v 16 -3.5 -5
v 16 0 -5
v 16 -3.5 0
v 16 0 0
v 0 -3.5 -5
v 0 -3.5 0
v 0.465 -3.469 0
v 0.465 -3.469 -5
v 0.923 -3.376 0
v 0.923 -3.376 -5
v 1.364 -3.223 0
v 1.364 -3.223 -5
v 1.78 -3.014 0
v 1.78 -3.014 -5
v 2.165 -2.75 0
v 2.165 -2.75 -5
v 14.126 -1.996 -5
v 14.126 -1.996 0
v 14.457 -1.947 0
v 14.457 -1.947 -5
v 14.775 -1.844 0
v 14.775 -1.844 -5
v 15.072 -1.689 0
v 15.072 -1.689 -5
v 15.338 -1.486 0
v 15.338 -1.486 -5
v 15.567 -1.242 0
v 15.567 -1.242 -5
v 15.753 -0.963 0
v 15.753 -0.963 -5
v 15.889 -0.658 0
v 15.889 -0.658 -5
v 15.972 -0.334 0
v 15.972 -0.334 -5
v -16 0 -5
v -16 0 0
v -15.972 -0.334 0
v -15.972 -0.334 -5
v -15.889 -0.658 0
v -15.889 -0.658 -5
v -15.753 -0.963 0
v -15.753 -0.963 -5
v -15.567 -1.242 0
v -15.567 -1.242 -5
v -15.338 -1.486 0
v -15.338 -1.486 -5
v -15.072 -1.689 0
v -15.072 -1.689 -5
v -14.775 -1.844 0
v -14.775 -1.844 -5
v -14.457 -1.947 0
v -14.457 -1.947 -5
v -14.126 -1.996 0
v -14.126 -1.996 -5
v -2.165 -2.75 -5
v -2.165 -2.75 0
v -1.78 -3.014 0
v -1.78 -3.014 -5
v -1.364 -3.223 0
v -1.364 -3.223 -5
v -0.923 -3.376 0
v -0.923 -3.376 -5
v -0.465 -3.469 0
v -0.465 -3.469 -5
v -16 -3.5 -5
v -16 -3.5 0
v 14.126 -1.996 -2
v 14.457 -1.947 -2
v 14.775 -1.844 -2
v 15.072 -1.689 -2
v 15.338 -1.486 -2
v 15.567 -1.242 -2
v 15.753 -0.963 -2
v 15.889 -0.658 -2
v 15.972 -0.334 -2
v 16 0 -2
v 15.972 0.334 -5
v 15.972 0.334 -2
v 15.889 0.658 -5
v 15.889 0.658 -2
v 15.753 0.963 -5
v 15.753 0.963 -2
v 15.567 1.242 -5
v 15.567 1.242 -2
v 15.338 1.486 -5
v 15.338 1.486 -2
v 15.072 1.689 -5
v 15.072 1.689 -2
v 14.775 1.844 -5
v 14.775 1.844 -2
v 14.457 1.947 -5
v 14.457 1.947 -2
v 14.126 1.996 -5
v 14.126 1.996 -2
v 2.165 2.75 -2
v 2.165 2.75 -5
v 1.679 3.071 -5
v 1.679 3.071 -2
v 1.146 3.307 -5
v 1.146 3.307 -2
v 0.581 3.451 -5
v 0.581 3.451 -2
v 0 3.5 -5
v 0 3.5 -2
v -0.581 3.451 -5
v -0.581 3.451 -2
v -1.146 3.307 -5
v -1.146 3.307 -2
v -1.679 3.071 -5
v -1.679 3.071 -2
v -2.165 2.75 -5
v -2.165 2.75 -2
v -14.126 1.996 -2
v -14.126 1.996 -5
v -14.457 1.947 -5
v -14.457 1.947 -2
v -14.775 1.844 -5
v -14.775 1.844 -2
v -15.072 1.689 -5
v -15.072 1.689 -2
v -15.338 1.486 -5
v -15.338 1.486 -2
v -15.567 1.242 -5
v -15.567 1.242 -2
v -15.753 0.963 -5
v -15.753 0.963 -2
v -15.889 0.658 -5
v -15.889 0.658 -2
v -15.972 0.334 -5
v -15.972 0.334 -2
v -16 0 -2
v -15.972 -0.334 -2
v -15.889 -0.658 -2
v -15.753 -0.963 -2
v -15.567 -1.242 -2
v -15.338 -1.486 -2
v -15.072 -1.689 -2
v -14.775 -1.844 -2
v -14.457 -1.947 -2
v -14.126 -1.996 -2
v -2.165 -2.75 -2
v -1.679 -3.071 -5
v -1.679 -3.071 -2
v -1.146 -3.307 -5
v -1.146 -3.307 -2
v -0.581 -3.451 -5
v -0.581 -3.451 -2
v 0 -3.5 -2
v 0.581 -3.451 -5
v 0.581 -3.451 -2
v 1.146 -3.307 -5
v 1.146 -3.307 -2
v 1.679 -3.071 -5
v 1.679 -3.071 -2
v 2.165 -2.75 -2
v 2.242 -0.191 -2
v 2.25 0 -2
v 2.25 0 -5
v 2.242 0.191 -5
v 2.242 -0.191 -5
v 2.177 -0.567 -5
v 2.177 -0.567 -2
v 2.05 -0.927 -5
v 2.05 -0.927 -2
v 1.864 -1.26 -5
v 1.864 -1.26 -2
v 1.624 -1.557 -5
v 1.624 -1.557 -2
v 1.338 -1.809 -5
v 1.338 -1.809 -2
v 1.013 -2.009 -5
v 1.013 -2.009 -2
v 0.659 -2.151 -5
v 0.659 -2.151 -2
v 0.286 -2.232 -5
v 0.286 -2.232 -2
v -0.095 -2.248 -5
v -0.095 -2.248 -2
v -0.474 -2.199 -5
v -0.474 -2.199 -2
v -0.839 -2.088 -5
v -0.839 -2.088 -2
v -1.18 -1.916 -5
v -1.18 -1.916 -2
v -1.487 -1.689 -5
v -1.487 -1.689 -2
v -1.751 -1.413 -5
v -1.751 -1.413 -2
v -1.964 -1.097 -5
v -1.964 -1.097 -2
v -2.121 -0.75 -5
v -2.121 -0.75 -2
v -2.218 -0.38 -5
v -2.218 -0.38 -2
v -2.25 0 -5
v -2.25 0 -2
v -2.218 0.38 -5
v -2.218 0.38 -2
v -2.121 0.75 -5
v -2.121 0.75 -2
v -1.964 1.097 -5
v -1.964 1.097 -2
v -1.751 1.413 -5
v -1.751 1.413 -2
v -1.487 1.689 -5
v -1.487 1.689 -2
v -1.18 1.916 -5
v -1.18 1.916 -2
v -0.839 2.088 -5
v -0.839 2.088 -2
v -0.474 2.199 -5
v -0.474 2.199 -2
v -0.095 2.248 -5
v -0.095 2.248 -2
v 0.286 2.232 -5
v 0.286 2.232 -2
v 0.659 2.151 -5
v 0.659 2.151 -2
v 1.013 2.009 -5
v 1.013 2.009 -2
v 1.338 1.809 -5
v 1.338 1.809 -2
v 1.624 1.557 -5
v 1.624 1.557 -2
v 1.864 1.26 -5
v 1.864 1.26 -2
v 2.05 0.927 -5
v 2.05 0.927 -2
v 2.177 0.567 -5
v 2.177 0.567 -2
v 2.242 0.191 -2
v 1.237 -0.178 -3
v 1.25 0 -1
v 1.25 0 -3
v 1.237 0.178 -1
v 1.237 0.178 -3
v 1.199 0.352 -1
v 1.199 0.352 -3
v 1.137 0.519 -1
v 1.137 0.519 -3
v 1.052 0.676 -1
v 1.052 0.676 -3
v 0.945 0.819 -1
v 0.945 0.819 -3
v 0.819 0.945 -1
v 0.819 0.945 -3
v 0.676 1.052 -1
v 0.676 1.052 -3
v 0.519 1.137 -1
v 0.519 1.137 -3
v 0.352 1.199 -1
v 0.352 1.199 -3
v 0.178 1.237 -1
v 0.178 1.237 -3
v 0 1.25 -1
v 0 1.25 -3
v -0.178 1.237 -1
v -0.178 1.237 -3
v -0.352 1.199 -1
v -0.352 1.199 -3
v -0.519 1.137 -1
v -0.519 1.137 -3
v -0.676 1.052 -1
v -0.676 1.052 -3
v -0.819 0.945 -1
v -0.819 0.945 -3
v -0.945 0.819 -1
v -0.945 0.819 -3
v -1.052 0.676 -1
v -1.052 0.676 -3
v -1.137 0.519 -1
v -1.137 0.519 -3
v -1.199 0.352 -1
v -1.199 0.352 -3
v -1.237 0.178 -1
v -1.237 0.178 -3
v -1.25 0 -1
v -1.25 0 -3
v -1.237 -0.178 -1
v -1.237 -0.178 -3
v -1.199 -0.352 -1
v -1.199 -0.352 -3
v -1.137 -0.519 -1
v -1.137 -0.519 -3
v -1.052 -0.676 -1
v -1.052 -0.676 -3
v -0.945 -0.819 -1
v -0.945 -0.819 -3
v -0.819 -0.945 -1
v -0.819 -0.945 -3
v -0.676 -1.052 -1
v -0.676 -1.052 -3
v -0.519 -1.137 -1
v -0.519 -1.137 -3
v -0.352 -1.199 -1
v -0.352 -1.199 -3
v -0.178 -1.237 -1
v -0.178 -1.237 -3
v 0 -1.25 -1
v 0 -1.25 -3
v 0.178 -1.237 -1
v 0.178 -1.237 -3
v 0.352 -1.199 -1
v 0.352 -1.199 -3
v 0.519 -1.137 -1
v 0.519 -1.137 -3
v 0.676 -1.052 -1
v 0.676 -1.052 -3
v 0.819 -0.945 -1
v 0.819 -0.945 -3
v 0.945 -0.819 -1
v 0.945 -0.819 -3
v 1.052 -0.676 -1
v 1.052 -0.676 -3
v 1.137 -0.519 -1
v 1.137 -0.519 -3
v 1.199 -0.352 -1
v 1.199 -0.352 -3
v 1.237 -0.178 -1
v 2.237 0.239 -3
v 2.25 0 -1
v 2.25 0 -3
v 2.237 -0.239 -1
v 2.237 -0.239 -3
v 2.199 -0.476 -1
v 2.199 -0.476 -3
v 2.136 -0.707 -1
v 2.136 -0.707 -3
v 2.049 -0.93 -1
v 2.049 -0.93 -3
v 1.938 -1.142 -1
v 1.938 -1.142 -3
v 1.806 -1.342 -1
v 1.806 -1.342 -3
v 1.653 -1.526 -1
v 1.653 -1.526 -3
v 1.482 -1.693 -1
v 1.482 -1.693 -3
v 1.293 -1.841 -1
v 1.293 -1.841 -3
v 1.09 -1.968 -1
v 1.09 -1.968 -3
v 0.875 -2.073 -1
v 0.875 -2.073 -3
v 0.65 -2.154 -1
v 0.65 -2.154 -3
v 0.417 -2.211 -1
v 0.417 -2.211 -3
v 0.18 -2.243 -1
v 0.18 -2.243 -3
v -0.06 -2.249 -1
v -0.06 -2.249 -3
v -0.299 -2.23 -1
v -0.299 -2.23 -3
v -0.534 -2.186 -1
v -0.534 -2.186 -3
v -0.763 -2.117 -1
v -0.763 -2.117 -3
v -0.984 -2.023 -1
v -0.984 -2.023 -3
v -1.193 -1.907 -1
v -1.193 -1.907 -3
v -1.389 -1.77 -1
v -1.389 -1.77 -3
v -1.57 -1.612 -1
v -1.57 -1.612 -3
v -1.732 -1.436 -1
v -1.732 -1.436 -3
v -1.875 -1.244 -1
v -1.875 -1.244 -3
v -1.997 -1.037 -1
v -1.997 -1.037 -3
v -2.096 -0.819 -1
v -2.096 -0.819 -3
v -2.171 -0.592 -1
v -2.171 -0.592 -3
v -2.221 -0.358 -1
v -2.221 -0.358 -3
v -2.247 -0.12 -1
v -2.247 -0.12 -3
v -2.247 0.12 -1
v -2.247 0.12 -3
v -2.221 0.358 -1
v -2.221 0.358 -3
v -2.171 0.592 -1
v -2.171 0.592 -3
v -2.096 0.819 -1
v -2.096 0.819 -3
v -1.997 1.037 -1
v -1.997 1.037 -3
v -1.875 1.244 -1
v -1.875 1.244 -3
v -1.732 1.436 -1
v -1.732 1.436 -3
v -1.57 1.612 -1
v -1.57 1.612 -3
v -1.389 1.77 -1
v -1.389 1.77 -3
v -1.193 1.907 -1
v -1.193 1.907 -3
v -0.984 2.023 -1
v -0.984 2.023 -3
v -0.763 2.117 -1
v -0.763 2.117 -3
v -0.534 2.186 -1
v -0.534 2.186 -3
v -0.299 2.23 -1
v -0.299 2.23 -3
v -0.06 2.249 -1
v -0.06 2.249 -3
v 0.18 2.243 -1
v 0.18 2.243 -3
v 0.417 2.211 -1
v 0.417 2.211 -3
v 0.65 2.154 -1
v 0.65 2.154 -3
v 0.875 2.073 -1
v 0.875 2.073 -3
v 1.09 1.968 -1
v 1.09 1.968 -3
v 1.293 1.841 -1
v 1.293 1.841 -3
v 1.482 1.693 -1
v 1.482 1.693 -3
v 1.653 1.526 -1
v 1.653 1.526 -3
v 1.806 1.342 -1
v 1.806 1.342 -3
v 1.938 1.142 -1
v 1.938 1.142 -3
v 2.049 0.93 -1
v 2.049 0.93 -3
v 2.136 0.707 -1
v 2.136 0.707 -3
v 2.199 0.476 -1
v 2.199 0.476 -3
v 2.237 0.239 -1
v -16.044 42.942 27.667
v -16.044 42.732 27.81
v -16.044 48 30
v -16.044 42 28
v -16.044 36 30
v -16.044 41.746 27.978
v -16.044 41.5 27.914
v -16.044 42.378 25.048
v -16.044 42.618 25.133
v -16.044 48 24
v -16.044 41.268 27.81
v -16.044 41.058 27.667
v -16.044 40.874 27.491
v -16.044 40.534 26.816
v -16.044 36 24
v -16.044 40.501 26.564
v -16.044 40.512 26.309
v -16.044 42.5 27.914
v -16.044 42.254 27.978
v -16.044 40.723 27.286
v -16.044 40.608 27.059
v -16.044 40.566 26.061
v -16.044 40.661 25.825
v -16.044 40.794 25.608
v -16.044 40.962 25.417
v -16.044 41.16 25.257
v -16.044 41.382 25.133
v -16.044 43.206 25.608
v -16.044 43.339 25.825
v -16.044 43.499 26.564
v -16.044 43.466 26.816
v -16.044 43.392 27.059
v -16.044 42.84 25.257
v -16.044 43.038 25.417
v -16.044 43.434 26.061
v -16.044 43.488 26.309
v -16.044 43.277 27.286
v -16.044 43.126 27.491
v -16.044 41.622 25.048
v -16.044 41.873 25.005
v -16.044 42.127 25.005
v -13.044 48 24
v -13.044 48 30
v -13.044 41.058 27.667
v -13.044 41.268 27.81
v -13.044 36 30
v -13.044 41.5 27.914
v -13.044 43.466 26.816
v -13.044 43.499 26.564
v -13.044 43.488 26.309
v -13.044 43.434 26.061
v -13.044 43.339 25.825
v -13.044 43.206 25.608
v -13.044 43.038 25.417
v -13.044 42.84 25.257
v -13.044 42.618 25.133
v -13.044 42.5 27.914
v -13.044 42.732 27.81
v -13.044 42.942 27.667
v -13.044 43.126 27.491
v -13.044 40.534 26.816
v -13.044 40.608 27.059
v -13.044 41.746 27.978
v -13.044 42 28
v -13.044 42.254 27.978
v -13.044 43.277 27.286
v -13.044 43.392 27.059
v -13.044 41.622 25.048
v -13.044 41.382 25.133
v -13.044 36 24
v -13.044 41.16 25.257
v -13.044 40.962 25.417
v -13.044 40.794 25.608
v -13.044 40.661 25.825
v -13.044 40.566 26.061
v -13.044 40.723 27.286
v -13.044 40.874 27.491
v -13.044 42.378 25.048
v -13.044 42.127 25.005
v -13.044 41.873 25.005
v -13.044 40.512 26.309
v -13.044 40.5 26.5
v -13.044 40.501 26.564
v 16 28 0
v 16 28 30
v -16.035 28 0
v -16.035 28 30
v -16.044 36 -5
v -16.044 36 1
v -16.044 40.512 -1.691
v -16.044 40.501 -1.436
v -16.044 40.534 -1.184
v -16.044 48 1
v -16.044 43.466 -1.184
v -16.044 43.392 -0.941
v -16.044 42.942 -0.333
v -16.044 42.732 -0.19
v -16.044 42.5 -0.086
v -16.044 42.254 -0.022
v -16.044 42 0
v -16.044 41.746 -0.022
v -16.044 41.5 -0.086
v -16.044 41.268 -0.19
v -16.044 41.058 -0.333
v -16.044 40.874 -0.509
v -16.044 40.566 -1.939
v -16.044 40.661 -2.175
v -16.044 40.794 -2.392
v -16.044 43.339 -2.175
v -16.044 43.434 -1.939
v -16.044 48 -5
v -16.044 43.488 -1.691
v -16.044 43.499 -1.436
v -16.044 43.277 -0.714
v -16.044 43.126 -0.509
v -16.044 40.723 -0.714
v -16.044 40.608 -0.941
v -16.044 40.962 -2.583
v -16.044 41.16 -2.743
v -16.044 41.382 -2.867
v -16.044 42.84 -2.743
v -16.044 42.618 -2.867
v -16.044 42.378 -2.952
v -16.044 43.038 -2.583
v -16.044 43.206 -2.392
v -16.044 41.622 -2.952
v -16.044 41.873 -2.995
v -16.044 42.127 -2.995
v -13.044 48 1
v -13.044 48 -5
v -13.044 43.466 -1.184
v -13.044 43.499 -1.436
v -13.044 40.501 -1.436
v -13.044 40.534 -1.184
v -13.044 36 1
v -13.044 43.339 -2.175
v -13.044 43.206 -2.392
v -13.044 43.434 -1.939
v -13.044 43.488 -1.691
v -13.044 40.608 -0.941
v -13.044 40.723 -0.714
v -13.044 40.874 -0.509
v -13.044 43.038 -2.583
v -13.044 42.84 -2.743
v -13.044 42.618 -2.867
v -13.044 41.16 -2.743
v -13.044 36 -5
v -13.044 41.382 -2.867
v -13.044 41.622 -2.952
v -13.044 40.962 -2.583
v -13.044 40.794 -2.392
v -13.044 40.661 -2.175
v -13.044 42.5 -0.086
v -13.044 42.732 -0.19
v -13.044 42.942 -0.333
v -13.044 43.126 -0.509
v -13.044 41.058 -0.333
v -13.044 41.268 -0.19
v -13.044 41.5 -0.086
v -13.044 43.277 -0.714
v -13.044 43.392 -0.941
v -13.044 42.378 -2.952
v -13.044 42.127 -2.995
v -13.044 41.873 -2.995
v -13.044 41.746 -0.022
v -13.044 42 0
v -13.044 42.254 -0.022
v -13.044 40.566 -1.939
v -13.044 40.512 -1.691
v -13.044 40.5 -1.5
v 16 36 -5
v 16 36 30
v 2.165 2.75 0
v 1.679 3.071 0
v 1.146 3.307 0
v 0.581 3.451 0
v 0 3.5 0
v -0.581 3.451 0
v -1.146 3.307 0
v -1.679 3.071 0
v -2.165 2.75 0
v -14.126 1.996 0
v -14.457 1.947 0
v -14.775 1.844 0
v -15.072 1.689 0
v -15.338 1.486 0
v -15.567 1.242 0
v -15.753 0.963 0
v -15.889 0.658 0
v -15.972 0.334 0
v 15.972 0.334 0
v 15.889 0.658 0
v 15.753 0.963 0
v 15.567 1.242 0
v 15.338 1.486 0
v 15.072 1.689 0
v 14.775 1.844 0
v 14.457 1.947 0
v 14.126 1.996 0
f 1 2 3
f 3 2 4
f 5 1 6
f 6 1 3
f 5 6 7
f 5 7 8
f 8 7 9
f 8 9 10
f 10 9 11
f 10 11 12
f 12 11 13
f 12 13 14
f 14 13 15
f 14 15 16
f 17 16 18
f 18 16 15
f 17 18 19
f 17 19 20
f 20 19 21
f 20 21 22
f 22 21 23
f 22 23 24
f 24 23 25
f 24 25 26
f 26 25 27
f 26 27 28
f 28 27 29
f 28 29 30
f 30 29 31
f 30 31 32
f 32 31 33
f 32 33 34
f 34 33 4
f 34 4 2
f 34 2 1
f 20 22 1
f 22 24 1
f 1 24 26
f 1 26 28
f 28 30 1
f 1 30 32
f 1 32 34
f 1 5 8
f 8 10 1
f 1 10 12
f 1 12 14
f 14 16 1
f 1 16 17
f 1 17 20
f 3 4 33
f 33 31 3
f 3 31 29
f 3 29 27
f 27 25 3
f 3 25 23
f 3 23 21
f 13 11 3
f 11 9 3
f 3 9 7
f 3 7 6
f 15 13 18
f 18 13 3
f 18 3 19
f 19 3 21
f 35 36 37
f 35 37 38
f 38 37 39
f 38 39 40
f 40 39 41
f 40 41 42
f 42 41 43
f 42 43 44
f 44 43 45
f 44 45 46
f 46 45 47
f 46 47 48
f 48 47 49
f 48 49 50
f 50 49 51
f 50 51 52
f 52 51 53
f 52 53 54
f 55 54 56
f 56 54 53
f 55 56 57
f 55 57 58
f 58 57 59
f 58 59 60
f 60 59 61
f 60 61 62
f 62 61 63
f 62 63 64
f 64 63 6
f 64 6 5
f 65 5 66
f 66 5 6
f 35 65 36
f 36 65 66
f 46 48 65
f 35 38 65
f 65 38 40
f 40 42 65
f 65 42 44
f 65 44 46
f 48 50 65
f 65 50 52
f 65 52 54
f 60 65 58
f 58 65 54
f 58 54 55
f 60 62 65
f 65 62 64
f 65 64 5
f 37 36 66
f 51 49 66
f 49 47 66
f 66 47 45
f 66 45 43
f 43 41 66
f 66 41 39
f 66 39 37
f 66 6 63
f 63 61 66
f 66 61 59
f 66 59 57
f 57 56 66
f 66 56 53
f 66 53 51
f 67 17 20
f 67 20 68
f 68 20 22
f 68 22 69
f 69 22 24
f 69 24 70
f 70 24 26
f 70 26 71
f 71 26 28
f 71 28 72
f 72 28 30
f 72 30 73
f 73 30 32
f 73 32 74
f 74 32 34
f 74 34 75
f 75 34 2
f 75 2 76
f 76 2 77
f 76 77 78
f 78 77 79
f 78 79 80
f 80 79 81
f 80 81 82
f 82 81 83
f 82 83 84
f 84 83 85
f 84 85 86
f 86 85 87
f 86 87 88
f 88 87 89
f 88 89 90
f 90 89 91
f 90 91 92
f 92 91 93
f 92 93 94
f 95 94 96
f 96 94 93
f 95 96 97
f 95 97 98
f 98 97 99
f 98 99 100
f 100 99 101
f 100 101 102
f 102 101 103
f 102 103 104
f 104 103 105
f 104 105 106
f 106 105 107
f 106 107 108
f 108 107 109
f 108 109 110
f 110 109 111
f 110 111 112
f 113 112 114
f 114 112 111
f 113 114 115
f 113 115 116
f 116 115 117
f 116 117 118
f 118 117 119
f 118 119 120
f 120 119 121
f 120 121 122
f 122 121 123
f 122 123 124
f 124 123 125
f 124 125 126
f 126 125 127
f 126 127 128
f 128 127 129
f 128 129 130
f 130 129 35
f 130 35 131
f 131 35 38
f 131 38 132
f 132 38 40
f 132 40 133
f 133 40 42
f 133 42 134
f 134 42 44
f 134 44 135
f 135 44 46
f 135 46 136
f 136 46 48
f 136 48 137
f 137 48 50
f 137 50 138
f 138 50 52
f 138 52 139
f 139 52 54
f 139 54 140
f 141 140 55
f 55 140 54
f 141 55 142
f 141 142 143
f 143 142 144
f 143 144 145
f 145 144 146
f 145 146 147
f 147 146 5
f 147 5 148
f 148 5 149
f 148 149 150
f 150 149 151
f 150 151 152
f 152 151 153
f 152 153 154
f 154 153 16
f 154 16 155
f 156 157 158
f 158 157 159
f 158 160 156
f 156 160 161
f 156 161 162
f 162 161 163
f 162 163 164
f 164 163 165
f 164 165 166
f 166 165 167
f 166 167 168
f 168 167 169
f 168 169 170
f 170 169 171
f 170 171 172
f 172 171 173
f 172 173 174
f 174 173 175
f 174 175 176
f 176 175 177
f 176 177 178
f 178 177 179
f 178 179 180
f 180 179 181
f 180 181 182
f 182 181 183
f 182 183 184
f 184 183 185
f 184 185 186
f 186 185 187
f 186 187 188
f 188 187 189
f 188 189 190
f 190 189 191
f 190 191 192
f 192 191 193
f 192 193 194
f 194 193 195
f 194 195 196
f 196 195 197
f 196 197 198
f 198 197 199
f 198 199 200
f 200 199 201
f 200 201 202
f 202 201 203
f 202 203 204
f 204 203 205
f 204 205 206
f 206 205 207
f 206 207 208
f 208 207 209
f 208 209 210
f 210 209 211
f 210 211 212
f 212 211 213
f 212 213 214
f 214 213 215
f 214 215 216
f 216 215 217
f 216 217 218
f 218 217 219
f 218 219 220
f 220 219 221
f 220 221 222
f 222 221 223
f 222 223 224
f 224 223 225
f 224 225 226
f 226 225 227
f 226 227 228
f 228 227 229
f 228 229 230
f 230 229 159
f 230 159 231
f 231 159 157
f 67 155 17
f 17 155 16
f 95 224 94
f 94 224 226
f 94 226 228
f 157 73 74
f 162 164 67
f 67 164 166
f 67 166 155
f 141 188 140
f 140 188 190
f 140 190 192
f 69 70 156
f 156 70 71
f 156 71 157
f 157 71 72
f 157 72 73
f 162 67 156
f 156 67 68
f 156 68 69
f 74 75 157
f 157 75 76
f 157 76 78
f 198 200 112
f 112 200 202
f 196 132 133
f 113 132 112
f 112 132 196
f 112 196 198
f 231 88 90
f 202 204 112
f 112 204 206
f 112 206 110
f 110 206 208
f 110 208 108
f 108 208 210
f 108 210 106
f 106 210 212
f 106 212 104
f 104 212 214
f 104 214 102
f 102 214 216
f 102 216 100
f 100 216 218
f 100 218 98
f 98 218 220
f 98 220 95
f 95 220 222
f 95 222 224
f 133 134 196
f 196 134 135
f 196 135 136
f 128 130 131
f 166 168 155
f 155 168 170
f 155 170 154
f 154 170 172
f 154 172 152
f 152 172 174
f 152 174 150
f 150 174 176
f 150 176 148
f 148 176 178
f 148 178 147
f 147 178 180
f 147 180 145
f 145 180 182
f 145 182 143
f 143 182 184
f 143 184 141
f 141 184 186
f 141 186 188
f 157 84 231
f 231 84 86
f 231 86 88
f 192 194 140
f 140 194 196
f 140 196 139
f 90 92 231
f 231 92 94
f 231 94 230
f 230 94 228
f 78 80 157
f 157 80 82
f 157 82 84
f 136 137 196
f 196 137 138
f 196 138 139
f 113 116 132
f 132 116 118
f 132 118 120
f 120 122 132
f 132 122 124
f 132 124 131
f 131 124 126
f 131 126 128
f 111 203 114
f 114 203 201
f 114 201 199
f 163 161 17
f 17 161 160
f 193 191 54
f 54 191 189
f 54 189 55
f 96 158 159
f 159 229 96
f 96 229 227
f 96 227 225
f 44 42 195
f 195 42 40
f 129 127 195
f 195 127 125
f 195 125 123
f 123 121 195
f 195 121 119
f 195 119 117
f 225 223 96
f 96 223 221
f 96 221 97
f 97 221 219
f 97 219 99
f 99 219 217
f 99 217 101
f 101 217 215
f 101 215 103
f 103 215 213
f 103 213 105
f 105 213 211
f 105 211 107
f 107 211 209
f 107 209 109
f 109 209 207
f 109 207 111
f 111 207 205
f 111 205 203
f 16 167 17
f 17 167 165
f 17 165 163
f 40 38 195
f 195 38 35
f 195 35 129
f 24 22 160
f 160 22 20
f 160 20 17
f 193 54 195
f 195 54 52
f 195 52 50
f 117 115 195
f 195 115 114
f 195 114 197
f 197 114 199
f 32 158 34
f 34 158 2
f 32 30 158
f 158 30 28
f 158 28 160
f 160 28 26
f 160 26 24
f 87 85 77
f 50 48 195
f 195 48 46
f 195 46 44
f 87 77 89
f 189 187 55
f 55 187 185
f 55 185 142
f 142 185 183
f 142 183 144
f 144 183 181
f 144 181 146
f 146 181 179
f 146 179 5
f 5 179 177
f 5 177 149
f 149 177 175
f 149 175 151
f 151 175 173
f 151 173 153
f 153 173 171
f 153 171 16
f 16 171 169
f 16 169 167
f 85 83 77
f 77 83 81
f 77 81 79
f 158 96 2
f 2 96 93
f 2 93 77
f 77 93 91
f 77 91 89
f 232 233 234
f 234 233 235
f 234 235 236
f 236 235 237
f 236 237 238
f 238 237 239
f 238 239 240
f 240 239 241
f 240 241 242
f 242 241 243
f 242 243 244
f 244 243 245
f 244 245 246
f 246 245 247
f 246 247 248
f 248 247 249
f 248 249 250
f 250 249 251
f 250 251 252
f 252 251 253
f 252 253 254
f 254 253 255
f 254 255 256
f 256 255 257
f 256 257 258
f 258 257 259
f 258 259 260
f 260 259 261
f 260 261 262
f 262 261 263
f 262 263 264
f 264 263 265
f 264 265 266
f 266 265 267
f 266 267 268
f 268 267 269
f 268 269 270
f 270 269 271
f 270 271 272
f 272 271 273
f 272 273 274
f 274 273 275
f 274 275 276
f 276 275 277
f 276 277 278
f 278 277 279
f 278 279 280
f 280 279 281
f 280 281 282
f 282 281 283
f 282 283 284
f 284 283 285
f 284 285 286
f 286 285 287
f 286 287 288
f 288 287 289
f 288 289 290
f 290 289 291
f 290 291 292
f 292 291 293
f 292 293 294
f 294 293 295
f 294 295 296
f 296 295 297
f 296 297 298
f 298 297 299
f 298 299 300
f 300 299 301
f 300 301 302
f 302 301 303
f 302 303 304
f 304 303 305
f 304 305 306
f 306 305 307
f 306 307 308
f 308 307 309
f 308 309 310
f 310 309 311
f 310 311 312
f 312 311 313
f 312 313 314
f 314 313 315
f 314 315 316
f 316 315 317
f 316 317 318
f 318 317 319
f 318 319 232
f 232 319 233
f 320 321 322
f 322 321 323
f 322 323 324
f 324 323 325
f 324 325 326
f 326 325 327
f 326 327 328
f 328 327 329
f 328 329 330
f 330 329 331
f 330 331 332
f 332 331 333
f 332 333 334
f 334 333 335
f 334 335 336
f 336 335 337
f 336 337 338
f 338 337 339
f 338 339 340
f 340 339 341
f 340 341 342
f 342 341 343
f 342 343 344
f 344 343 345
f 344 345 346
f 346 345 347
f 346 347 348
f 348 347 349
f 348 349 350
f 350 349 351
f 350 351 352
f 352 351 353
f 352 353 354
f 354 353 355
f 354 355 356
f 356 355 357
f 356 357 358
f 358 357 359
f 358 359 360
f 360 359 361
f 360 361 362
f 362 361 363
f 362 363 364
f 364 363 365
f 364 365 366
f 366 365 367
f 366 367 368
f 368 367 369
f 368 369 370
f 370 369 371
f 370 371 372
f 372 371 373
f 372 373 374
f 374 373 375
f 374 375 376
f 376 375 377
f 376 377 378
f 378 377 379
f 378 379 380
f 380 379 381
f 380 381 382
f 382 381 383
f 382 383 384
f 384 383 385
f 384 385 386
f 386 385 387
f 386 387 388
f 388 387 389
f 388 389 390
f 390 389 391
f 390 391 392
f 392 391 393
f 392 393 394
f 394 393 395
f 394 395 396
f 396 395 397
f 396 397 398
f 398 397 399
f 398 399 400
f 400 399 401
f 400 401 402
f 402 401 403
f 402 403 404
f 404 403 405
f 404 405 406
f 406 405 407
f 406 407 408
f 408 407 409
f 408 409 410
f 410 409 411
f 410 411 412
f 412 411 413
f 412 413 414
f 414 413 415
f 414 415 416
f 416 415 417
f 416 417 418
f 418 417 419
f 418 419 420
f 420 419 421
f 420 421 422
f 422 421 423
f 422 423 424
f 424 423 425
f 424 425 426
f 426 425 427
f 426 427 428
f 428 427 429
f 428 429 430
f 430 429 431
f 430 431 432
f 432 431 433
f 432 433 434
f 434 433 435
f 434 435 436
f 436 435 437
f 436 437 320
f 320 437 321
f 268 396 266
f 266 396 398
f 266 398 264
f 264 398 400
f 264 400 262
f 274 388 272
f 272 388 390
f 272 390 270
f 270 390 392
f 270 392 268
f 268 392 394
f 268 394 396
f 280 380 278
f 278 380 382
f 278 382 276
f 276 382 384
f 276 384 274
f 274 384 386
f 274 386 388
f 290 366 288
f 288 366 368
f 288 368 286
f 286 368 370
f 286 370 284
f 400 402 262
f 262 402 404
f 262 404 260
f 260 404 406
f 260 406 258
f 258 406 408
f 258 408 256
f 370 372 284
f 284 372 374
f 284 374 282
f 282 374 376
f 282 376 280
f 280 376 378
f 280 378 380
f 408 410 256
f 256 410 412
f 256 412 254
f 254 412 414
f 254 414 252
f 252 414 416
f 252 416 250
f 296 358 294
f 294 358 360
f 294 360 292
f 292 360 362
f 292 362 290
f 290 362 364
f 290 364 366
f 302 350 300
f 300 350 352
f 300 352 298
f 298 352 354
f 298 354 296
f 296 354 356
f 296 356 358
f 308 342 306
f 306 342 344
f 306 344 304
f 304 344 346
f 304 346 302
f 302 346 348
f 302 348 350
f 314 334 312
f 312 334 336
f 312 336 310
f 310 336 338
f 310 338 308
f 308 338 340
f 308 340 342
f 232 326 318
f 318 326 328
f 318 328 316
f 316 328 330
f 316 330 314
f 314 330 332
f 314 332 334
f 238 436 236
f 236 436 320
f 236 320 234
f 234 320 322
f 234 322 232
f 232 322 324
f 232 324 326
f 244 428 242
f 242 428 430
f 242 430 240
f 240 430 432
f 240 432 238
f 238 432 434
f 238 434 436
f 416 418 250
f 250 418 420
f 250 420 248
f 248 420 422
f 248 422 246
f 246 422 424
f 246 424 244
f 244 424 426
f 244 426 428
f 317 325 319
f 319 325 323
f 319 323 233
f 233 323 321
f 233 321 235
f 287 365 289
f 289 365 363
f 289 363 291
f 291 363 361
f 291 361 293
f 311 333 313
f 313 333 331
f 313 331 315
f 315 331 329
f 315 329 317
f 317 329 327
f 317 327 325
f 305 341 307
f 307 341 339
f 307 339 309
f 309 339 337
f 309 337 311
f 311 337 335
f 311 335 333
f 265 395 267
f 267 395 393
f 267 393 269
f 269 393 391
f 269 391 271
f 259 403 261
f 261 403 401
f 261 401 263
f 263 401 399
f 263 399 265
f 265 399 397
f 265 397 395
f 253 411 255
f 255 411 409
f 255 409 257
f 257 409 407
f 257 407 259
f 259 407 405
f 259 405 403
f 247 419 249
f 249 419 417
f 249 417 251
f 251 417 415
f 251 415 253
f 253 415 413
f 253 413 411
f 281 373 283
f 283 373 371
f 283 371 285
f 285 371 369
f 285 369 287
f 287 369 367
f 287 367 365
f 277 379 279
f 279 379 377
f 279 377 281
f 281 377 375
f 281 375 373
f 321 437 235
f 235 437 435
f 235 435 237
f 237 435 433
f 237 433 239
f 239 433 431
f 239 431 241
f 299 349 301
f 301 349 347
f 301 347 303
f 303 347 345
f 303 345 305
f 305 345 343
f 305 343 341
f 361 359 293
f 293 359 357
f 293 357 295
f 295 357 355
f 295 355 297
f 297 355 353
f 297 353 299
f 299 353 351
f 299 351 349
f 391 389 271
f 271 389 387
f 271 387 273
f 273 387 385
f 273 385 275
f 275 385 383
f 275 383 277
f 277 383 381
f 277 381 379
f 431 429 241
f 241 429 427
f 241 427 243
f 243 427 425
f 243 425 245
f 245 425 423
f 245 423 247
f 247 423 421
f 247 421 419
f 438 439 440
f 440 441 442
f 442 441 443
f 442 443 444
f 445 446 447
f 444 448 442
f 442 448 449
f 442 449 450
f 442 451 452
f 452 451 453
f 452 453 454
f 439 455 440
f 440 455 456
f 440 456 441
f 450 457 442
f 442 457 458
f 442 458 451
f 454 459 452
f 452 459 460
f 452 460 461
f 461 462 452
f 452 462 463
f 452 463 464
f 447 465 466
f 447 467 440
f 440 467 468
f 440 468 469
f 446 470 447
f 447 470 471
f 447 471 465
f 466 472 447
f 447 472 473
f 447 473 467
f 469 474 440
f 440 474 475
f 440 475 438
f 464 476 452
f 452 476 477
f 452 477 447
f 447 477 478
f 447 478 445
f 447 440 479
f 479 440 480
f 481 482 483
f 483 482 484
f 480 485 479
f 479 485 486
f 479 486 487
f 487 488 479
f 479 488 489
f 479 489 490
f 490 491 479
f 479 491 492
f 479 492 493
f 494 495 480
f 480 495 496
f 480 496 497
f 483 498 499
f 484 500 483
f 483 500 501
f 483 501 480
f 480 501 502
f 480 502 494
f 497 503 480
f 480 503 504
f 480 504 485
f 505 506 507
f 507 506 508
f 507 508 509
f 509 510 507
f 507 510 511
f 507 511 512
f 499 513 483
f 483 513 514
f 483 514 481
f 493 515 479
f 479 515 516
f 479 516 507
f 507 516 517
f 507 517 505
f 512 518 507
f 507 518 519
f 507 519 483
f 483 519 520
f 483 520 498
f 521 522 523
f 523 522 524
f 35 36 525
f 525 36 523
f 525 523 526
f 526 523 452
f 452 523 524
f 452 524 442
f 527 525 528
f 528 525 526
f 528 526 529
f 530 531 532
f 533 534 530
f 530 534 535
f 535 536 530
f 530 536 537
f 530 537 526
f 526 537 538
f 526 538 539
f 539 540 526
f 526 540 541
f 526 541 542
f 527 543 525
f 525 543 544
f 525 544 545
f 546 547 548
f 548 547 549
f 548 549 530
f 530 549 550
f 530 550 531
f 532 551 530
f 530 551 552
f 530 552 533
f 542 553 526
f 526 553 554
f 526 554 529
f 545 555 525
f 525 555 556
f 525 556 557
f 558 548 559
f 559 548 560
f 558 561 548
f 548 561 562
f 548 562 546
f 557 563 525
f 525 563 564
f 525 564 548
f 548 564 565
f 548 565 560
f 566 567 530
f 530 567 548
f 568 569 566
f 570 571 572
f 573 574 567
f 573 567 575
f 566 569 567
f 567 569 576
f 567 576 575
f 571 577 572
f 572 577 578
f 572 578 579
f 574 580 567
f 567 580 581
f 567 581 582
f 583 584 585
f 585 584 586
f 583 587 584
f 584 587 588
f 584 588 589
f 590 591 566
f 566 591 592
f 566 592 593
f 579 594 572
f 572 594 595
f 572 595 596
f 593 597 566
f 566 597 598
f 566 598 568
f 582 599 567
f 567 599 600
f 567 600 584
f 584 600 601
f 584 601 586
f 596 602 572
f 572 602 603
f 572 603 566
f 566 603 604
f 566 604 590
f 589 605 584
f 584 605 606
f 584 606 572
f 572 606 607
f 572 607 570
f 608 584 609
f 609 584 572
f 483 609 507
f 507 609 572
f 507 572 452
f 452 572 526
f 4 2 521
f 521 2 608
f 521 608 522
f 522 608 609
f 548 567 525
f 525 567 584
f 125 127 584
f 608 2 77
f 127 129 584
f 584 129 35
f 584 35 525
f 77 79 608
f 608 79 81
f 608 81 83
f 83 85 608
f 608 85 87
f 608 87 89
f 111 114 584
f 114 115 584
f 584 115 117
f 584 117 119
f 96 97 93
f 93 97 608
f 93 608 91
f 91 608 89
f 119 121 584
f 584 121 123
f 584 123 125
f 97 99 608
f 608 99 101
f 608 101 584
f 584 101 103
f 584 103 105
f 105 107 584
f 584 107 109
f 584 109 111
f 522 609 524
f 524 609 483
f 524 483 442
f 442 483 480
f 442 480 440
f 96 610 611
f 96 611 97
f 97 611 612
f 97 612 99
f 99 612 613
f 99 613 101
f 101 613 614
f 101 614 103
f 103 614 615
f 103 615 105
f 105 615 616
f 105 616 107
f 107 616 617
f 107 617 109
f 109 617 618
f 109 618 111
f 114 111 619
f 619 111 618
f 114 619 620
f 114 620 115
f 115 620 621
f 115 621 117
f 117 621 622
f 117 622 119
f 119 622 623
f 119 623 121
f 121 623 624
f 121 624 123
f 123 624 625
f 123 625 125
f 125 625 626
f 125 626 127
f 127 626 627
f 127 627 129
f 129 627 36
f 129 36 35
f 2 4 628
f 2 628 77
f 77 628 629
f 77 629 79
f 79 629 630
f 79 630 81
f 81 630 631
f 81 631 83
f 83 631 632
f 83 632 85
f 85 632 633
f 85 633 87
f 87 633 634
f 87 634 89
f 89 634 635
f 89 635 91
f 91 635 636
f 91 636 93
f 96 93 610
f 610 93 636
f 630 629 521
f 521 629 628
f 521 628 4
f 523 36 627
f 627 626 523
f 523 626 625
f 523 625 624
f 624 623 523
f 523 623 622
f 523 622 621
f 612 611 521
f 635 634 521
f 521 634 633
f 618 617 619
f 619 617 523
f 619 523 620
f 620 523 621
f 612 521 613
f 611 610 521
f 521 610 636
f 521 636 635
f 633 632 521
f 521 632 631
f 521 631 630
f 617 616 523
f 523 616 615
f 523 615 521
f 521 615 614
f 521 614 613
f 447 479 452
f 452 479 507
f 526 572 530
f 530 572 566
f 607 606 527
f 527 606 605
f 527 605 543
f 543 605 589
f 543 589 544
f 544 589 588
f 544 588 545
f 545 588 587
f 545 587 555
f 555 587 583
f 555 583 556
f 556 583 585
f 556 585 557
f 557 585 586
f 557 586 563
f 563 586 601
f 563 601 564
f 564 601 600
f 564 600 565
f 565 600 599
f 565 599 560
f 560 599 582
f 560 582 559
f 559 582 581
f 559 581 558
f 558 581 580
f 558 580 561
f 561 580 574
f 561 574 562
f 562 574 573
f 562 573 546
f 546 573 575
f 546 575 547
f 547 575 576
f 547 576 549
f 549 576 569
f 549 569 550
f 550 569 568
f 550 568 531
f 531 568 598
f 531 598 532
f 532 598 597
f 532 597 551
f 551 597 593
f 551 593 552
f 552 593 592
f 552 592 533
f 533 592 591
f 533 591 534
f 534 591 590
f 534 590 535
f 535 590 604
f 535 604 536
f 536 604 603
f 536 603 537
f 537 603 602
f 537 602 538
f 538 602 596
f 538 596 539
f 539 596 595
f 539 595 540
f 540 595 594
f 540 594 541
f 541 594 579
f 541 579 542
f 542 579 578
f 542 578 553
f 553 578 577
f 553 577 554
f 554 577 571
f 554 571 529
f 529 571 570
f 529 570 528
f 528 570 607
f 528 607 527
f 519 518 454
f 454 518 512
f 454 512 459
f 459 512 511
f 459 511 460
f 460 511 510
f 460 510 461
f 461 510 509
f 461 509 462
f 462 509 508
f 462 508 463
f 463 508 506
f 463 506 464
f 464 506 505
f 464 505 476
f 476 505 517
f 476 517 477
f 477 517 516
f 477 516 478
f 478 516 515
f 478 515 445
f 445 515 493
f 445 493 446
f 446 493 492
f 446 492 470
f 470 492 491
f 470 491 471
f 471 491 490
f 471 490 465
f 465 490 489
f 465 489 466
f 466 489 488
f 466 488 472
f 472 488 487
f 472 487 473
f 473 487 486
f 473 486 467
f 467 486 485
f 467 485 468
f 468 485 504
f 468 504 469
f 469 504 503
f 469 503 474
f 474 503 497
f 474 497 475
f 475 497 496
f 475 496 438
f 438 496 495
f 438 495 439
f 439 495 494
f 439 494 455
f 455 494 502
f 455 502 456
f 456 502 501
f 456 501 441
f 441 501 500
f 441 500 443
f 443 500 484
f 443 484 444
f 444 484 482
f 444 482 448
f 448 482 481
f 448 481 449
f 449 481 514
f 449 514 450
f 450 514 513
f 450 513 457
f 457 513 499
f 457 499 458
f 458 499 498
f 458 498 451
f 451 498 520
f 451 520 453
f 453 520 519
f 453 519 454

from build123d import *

# Parameters (mm, degrees)
BOSS_EXTRUDE29_DEPTH      = 30
BOSS_EXTRUDE29_DEPTH_BACK = 5
BOSS_EXTRUDE31_DEPTH      = 5
BOSS_EXTRUDE104_START     = -3.5
SKETCH1_23_R              = 2.25
BOSS_EXTRUDE104_DEPTH     = 1.5
BOSS_EXTRUDE105_START     = -1
SKETCH1_24_R              = 2.25
SKETCH1_24_R_2            = 1.25
BOSS_EXTRUDE105_DEPTH     = 2
SKETCH3_W                 = 23
SKETCH3_H                 = 12
CUT_EXTRUDE1_DEPTH        = 66.044949511
SKETCH4_R                 = 1.5
CUT_EXTRUDE2_DEPTH        = 66.044949511


with BuildPart() as part:
    # Sketch1 → Boss-Extrude29 (new, two sides: drawn at the far end of the back side and taken through both)
    with BuildSketch(Plane.XY.offset(-BOSS_EXTRUDE29_DEPTH_BACK)):
        Polygon((-16.034556216, 28), (16, 28), (16, 36), (-13.044429421, 36), (-13.044429421, 48), (-16.044429421, 48), (-16.044429421, 36), align=None)
    extrude(amount=BOSS_EXTRUDE29_DEPTH + BOSS_EXTRUDE29_DEPTH_BACK)

    # Sketch1<12> → Boss-Extrude31 (add)
    with BuildSketch(Plane.XY):
        with BuildLine():
            ThreePointArc((14.125822824, 1.99603823), (15.458020173, 1.369005908), (16, 0))
            Line((16, 0), (16, 28))
            Line((16, 28), (-16.034556216, 28))
            Line((-16.034556216, 28), (-16, 0))
            ThreePointArc((-16, 0), (-15.458020173, 1.369005908), (-14.125822824, 1.99603823))
            Line((-14.125822824, 1.99603823), (-2.165063509, 2.75))
            ThreePointArc((-2.165063509, 2.75), (0, 3.5), (2.165063509, 2.75))
            Line((2.165063509, 2.75), (14.125822824, 1.99603823))
        make_face()
        with BuildLine():
            Line((16, -3.5), (16, 0))
            ThreePointArc((16, 0), (15.458020173, -1.369005908), (14.125822824, -1.99603823))
            Line((14.125822824, -1.99603823), (2.165063509, -2.75))
            ThreePointArc((2.165063509, -2.75), (1.145643924, -3.307189139), (0, -3.5))
            Line((0, -3.5), (16, -3.5))
        make_face()
        with BuildLine():
            Line((-16, -3.5), (0, -3.5))
            ThreePointArc((0, -3.5), (-1.145643924, -3.307189139), (-2.165063509, -2.75))
            Line((-2.165063509, -2.75), (-14.125822824, -1.99603823))
            ThreePointArc((-14.125822824, -1.99603823), (-15.458020173, -1.369005908), (-16, 0))
            Line((-16, 0), (-16, -3.5))
        make_face()
    extrude(amount=-BOSS_EXTRUDE31_DEPTH)


with BuildPart() as boss_extrude31_piece_1:
    # of the separate pieces the step leaves, piece 1, a body of its own (boss_extrude31_pieces)
    add(part.part.solids().sort_by_distance((-16.034556216, 28, 30))[0])

    # Sketch3 → Cut-Extrude1 (cut, through all)
    with BuildSketch(Plane.ZY.offset(16.044429421)):
        with Locations((12.5, 42)):
            Rectangle(SKETCH3_W, SKETCH3_H)
    extrude(amount=-CUT_EXTRUDE1_DEPTH, mode=Mode.SUBTRACT)

    # Sketch4 → Cut-Extrude2 (cut, through all)
    with BuildSketch(Plane.ZY.offset(16.044429421)):
        with Locations((-1.5, 42)):
            Circle(SKETCH4_R)
        with Locations((26.5, 42)):
            Circle(SKETCH4_R)
    extrude(amount=-CUT_EXTRUDE2_DEPTH, mode=Mode.SUBTRACT)


with BuildPart() as boss_extrude31_piece_2:
    # of the separate pieces the step leaves, piece 2, a body of its own (boss_extrude31_pieces)
    add(part.part.solids().sort_by_distance((16, -3.5, 0))[0])


with BuildPart() as boss_extrude31_piece_3:
    # of the separate pieces the step leaves, piece 3, a body of its own (boss_extrude31_pieces)
    add(part.part.solids().sort_by_distance((-16, -3.5, 0))[0])


with BuildPart() as body_4:
    # Sketch1<23> → Boss-Extrude104 (new, symmetric)
    with BuildSketch(Plane.XY.offset(BOSS_EXTRUDE104_START)):
        with BuildLine():
            ThreePointArc((14.125822824, -1.99603823), (16, 0), (14.125822824, 1.99603823))
            Line((14.125822824, 1.99603823), (2.165063509, 2.75))
            ThreePointArc((2.165063509, 2.75), (0, 3.5), (-2.165063509, 2.75))
            Line((-2.165063509, 2.75), (-14.125822824, 1.99603823))
            ThreePointArc((-14.125822824, 1.99603823), (-16, 0), (-14.125822824, -1.99603823))
            Line((-14.125822824, -1.99603823), (-2.165063509, -2.75))
            ThreePointArc((-2.165063509, -2.75), (0, -3.5), (2.165063509, -2.75))
            Line((2.165063509, -2.75), (14.125822824, -1.99603823))
        make_face()
        Circle(SKETCH1_23_R, mode=Mode.SUBTRACT)
    extrude(amount=BOSS_EXTRUDE104_DEPTH, both=True)


with BuildPart() as body_5:
    # Sketch1<24> → Boss-Extrude105 (new body)
    with BuildSketch(Plane.XY.offset(BOSS_EXTRUDE105_START)):
        Circle(SKETCH1_24_R)
        Circle(SKETCH1_24_R_2, mode=Mode.SUBTRACT)
    extrude(amount=-BOSS_EXTRUDE105_DEPTH)


solid = Compound([boss_extrude31_piece_1.part, boss_extrude31_piece_2.part, boss_extrude31_piece_3.part, body_4.part, body_5.part])
